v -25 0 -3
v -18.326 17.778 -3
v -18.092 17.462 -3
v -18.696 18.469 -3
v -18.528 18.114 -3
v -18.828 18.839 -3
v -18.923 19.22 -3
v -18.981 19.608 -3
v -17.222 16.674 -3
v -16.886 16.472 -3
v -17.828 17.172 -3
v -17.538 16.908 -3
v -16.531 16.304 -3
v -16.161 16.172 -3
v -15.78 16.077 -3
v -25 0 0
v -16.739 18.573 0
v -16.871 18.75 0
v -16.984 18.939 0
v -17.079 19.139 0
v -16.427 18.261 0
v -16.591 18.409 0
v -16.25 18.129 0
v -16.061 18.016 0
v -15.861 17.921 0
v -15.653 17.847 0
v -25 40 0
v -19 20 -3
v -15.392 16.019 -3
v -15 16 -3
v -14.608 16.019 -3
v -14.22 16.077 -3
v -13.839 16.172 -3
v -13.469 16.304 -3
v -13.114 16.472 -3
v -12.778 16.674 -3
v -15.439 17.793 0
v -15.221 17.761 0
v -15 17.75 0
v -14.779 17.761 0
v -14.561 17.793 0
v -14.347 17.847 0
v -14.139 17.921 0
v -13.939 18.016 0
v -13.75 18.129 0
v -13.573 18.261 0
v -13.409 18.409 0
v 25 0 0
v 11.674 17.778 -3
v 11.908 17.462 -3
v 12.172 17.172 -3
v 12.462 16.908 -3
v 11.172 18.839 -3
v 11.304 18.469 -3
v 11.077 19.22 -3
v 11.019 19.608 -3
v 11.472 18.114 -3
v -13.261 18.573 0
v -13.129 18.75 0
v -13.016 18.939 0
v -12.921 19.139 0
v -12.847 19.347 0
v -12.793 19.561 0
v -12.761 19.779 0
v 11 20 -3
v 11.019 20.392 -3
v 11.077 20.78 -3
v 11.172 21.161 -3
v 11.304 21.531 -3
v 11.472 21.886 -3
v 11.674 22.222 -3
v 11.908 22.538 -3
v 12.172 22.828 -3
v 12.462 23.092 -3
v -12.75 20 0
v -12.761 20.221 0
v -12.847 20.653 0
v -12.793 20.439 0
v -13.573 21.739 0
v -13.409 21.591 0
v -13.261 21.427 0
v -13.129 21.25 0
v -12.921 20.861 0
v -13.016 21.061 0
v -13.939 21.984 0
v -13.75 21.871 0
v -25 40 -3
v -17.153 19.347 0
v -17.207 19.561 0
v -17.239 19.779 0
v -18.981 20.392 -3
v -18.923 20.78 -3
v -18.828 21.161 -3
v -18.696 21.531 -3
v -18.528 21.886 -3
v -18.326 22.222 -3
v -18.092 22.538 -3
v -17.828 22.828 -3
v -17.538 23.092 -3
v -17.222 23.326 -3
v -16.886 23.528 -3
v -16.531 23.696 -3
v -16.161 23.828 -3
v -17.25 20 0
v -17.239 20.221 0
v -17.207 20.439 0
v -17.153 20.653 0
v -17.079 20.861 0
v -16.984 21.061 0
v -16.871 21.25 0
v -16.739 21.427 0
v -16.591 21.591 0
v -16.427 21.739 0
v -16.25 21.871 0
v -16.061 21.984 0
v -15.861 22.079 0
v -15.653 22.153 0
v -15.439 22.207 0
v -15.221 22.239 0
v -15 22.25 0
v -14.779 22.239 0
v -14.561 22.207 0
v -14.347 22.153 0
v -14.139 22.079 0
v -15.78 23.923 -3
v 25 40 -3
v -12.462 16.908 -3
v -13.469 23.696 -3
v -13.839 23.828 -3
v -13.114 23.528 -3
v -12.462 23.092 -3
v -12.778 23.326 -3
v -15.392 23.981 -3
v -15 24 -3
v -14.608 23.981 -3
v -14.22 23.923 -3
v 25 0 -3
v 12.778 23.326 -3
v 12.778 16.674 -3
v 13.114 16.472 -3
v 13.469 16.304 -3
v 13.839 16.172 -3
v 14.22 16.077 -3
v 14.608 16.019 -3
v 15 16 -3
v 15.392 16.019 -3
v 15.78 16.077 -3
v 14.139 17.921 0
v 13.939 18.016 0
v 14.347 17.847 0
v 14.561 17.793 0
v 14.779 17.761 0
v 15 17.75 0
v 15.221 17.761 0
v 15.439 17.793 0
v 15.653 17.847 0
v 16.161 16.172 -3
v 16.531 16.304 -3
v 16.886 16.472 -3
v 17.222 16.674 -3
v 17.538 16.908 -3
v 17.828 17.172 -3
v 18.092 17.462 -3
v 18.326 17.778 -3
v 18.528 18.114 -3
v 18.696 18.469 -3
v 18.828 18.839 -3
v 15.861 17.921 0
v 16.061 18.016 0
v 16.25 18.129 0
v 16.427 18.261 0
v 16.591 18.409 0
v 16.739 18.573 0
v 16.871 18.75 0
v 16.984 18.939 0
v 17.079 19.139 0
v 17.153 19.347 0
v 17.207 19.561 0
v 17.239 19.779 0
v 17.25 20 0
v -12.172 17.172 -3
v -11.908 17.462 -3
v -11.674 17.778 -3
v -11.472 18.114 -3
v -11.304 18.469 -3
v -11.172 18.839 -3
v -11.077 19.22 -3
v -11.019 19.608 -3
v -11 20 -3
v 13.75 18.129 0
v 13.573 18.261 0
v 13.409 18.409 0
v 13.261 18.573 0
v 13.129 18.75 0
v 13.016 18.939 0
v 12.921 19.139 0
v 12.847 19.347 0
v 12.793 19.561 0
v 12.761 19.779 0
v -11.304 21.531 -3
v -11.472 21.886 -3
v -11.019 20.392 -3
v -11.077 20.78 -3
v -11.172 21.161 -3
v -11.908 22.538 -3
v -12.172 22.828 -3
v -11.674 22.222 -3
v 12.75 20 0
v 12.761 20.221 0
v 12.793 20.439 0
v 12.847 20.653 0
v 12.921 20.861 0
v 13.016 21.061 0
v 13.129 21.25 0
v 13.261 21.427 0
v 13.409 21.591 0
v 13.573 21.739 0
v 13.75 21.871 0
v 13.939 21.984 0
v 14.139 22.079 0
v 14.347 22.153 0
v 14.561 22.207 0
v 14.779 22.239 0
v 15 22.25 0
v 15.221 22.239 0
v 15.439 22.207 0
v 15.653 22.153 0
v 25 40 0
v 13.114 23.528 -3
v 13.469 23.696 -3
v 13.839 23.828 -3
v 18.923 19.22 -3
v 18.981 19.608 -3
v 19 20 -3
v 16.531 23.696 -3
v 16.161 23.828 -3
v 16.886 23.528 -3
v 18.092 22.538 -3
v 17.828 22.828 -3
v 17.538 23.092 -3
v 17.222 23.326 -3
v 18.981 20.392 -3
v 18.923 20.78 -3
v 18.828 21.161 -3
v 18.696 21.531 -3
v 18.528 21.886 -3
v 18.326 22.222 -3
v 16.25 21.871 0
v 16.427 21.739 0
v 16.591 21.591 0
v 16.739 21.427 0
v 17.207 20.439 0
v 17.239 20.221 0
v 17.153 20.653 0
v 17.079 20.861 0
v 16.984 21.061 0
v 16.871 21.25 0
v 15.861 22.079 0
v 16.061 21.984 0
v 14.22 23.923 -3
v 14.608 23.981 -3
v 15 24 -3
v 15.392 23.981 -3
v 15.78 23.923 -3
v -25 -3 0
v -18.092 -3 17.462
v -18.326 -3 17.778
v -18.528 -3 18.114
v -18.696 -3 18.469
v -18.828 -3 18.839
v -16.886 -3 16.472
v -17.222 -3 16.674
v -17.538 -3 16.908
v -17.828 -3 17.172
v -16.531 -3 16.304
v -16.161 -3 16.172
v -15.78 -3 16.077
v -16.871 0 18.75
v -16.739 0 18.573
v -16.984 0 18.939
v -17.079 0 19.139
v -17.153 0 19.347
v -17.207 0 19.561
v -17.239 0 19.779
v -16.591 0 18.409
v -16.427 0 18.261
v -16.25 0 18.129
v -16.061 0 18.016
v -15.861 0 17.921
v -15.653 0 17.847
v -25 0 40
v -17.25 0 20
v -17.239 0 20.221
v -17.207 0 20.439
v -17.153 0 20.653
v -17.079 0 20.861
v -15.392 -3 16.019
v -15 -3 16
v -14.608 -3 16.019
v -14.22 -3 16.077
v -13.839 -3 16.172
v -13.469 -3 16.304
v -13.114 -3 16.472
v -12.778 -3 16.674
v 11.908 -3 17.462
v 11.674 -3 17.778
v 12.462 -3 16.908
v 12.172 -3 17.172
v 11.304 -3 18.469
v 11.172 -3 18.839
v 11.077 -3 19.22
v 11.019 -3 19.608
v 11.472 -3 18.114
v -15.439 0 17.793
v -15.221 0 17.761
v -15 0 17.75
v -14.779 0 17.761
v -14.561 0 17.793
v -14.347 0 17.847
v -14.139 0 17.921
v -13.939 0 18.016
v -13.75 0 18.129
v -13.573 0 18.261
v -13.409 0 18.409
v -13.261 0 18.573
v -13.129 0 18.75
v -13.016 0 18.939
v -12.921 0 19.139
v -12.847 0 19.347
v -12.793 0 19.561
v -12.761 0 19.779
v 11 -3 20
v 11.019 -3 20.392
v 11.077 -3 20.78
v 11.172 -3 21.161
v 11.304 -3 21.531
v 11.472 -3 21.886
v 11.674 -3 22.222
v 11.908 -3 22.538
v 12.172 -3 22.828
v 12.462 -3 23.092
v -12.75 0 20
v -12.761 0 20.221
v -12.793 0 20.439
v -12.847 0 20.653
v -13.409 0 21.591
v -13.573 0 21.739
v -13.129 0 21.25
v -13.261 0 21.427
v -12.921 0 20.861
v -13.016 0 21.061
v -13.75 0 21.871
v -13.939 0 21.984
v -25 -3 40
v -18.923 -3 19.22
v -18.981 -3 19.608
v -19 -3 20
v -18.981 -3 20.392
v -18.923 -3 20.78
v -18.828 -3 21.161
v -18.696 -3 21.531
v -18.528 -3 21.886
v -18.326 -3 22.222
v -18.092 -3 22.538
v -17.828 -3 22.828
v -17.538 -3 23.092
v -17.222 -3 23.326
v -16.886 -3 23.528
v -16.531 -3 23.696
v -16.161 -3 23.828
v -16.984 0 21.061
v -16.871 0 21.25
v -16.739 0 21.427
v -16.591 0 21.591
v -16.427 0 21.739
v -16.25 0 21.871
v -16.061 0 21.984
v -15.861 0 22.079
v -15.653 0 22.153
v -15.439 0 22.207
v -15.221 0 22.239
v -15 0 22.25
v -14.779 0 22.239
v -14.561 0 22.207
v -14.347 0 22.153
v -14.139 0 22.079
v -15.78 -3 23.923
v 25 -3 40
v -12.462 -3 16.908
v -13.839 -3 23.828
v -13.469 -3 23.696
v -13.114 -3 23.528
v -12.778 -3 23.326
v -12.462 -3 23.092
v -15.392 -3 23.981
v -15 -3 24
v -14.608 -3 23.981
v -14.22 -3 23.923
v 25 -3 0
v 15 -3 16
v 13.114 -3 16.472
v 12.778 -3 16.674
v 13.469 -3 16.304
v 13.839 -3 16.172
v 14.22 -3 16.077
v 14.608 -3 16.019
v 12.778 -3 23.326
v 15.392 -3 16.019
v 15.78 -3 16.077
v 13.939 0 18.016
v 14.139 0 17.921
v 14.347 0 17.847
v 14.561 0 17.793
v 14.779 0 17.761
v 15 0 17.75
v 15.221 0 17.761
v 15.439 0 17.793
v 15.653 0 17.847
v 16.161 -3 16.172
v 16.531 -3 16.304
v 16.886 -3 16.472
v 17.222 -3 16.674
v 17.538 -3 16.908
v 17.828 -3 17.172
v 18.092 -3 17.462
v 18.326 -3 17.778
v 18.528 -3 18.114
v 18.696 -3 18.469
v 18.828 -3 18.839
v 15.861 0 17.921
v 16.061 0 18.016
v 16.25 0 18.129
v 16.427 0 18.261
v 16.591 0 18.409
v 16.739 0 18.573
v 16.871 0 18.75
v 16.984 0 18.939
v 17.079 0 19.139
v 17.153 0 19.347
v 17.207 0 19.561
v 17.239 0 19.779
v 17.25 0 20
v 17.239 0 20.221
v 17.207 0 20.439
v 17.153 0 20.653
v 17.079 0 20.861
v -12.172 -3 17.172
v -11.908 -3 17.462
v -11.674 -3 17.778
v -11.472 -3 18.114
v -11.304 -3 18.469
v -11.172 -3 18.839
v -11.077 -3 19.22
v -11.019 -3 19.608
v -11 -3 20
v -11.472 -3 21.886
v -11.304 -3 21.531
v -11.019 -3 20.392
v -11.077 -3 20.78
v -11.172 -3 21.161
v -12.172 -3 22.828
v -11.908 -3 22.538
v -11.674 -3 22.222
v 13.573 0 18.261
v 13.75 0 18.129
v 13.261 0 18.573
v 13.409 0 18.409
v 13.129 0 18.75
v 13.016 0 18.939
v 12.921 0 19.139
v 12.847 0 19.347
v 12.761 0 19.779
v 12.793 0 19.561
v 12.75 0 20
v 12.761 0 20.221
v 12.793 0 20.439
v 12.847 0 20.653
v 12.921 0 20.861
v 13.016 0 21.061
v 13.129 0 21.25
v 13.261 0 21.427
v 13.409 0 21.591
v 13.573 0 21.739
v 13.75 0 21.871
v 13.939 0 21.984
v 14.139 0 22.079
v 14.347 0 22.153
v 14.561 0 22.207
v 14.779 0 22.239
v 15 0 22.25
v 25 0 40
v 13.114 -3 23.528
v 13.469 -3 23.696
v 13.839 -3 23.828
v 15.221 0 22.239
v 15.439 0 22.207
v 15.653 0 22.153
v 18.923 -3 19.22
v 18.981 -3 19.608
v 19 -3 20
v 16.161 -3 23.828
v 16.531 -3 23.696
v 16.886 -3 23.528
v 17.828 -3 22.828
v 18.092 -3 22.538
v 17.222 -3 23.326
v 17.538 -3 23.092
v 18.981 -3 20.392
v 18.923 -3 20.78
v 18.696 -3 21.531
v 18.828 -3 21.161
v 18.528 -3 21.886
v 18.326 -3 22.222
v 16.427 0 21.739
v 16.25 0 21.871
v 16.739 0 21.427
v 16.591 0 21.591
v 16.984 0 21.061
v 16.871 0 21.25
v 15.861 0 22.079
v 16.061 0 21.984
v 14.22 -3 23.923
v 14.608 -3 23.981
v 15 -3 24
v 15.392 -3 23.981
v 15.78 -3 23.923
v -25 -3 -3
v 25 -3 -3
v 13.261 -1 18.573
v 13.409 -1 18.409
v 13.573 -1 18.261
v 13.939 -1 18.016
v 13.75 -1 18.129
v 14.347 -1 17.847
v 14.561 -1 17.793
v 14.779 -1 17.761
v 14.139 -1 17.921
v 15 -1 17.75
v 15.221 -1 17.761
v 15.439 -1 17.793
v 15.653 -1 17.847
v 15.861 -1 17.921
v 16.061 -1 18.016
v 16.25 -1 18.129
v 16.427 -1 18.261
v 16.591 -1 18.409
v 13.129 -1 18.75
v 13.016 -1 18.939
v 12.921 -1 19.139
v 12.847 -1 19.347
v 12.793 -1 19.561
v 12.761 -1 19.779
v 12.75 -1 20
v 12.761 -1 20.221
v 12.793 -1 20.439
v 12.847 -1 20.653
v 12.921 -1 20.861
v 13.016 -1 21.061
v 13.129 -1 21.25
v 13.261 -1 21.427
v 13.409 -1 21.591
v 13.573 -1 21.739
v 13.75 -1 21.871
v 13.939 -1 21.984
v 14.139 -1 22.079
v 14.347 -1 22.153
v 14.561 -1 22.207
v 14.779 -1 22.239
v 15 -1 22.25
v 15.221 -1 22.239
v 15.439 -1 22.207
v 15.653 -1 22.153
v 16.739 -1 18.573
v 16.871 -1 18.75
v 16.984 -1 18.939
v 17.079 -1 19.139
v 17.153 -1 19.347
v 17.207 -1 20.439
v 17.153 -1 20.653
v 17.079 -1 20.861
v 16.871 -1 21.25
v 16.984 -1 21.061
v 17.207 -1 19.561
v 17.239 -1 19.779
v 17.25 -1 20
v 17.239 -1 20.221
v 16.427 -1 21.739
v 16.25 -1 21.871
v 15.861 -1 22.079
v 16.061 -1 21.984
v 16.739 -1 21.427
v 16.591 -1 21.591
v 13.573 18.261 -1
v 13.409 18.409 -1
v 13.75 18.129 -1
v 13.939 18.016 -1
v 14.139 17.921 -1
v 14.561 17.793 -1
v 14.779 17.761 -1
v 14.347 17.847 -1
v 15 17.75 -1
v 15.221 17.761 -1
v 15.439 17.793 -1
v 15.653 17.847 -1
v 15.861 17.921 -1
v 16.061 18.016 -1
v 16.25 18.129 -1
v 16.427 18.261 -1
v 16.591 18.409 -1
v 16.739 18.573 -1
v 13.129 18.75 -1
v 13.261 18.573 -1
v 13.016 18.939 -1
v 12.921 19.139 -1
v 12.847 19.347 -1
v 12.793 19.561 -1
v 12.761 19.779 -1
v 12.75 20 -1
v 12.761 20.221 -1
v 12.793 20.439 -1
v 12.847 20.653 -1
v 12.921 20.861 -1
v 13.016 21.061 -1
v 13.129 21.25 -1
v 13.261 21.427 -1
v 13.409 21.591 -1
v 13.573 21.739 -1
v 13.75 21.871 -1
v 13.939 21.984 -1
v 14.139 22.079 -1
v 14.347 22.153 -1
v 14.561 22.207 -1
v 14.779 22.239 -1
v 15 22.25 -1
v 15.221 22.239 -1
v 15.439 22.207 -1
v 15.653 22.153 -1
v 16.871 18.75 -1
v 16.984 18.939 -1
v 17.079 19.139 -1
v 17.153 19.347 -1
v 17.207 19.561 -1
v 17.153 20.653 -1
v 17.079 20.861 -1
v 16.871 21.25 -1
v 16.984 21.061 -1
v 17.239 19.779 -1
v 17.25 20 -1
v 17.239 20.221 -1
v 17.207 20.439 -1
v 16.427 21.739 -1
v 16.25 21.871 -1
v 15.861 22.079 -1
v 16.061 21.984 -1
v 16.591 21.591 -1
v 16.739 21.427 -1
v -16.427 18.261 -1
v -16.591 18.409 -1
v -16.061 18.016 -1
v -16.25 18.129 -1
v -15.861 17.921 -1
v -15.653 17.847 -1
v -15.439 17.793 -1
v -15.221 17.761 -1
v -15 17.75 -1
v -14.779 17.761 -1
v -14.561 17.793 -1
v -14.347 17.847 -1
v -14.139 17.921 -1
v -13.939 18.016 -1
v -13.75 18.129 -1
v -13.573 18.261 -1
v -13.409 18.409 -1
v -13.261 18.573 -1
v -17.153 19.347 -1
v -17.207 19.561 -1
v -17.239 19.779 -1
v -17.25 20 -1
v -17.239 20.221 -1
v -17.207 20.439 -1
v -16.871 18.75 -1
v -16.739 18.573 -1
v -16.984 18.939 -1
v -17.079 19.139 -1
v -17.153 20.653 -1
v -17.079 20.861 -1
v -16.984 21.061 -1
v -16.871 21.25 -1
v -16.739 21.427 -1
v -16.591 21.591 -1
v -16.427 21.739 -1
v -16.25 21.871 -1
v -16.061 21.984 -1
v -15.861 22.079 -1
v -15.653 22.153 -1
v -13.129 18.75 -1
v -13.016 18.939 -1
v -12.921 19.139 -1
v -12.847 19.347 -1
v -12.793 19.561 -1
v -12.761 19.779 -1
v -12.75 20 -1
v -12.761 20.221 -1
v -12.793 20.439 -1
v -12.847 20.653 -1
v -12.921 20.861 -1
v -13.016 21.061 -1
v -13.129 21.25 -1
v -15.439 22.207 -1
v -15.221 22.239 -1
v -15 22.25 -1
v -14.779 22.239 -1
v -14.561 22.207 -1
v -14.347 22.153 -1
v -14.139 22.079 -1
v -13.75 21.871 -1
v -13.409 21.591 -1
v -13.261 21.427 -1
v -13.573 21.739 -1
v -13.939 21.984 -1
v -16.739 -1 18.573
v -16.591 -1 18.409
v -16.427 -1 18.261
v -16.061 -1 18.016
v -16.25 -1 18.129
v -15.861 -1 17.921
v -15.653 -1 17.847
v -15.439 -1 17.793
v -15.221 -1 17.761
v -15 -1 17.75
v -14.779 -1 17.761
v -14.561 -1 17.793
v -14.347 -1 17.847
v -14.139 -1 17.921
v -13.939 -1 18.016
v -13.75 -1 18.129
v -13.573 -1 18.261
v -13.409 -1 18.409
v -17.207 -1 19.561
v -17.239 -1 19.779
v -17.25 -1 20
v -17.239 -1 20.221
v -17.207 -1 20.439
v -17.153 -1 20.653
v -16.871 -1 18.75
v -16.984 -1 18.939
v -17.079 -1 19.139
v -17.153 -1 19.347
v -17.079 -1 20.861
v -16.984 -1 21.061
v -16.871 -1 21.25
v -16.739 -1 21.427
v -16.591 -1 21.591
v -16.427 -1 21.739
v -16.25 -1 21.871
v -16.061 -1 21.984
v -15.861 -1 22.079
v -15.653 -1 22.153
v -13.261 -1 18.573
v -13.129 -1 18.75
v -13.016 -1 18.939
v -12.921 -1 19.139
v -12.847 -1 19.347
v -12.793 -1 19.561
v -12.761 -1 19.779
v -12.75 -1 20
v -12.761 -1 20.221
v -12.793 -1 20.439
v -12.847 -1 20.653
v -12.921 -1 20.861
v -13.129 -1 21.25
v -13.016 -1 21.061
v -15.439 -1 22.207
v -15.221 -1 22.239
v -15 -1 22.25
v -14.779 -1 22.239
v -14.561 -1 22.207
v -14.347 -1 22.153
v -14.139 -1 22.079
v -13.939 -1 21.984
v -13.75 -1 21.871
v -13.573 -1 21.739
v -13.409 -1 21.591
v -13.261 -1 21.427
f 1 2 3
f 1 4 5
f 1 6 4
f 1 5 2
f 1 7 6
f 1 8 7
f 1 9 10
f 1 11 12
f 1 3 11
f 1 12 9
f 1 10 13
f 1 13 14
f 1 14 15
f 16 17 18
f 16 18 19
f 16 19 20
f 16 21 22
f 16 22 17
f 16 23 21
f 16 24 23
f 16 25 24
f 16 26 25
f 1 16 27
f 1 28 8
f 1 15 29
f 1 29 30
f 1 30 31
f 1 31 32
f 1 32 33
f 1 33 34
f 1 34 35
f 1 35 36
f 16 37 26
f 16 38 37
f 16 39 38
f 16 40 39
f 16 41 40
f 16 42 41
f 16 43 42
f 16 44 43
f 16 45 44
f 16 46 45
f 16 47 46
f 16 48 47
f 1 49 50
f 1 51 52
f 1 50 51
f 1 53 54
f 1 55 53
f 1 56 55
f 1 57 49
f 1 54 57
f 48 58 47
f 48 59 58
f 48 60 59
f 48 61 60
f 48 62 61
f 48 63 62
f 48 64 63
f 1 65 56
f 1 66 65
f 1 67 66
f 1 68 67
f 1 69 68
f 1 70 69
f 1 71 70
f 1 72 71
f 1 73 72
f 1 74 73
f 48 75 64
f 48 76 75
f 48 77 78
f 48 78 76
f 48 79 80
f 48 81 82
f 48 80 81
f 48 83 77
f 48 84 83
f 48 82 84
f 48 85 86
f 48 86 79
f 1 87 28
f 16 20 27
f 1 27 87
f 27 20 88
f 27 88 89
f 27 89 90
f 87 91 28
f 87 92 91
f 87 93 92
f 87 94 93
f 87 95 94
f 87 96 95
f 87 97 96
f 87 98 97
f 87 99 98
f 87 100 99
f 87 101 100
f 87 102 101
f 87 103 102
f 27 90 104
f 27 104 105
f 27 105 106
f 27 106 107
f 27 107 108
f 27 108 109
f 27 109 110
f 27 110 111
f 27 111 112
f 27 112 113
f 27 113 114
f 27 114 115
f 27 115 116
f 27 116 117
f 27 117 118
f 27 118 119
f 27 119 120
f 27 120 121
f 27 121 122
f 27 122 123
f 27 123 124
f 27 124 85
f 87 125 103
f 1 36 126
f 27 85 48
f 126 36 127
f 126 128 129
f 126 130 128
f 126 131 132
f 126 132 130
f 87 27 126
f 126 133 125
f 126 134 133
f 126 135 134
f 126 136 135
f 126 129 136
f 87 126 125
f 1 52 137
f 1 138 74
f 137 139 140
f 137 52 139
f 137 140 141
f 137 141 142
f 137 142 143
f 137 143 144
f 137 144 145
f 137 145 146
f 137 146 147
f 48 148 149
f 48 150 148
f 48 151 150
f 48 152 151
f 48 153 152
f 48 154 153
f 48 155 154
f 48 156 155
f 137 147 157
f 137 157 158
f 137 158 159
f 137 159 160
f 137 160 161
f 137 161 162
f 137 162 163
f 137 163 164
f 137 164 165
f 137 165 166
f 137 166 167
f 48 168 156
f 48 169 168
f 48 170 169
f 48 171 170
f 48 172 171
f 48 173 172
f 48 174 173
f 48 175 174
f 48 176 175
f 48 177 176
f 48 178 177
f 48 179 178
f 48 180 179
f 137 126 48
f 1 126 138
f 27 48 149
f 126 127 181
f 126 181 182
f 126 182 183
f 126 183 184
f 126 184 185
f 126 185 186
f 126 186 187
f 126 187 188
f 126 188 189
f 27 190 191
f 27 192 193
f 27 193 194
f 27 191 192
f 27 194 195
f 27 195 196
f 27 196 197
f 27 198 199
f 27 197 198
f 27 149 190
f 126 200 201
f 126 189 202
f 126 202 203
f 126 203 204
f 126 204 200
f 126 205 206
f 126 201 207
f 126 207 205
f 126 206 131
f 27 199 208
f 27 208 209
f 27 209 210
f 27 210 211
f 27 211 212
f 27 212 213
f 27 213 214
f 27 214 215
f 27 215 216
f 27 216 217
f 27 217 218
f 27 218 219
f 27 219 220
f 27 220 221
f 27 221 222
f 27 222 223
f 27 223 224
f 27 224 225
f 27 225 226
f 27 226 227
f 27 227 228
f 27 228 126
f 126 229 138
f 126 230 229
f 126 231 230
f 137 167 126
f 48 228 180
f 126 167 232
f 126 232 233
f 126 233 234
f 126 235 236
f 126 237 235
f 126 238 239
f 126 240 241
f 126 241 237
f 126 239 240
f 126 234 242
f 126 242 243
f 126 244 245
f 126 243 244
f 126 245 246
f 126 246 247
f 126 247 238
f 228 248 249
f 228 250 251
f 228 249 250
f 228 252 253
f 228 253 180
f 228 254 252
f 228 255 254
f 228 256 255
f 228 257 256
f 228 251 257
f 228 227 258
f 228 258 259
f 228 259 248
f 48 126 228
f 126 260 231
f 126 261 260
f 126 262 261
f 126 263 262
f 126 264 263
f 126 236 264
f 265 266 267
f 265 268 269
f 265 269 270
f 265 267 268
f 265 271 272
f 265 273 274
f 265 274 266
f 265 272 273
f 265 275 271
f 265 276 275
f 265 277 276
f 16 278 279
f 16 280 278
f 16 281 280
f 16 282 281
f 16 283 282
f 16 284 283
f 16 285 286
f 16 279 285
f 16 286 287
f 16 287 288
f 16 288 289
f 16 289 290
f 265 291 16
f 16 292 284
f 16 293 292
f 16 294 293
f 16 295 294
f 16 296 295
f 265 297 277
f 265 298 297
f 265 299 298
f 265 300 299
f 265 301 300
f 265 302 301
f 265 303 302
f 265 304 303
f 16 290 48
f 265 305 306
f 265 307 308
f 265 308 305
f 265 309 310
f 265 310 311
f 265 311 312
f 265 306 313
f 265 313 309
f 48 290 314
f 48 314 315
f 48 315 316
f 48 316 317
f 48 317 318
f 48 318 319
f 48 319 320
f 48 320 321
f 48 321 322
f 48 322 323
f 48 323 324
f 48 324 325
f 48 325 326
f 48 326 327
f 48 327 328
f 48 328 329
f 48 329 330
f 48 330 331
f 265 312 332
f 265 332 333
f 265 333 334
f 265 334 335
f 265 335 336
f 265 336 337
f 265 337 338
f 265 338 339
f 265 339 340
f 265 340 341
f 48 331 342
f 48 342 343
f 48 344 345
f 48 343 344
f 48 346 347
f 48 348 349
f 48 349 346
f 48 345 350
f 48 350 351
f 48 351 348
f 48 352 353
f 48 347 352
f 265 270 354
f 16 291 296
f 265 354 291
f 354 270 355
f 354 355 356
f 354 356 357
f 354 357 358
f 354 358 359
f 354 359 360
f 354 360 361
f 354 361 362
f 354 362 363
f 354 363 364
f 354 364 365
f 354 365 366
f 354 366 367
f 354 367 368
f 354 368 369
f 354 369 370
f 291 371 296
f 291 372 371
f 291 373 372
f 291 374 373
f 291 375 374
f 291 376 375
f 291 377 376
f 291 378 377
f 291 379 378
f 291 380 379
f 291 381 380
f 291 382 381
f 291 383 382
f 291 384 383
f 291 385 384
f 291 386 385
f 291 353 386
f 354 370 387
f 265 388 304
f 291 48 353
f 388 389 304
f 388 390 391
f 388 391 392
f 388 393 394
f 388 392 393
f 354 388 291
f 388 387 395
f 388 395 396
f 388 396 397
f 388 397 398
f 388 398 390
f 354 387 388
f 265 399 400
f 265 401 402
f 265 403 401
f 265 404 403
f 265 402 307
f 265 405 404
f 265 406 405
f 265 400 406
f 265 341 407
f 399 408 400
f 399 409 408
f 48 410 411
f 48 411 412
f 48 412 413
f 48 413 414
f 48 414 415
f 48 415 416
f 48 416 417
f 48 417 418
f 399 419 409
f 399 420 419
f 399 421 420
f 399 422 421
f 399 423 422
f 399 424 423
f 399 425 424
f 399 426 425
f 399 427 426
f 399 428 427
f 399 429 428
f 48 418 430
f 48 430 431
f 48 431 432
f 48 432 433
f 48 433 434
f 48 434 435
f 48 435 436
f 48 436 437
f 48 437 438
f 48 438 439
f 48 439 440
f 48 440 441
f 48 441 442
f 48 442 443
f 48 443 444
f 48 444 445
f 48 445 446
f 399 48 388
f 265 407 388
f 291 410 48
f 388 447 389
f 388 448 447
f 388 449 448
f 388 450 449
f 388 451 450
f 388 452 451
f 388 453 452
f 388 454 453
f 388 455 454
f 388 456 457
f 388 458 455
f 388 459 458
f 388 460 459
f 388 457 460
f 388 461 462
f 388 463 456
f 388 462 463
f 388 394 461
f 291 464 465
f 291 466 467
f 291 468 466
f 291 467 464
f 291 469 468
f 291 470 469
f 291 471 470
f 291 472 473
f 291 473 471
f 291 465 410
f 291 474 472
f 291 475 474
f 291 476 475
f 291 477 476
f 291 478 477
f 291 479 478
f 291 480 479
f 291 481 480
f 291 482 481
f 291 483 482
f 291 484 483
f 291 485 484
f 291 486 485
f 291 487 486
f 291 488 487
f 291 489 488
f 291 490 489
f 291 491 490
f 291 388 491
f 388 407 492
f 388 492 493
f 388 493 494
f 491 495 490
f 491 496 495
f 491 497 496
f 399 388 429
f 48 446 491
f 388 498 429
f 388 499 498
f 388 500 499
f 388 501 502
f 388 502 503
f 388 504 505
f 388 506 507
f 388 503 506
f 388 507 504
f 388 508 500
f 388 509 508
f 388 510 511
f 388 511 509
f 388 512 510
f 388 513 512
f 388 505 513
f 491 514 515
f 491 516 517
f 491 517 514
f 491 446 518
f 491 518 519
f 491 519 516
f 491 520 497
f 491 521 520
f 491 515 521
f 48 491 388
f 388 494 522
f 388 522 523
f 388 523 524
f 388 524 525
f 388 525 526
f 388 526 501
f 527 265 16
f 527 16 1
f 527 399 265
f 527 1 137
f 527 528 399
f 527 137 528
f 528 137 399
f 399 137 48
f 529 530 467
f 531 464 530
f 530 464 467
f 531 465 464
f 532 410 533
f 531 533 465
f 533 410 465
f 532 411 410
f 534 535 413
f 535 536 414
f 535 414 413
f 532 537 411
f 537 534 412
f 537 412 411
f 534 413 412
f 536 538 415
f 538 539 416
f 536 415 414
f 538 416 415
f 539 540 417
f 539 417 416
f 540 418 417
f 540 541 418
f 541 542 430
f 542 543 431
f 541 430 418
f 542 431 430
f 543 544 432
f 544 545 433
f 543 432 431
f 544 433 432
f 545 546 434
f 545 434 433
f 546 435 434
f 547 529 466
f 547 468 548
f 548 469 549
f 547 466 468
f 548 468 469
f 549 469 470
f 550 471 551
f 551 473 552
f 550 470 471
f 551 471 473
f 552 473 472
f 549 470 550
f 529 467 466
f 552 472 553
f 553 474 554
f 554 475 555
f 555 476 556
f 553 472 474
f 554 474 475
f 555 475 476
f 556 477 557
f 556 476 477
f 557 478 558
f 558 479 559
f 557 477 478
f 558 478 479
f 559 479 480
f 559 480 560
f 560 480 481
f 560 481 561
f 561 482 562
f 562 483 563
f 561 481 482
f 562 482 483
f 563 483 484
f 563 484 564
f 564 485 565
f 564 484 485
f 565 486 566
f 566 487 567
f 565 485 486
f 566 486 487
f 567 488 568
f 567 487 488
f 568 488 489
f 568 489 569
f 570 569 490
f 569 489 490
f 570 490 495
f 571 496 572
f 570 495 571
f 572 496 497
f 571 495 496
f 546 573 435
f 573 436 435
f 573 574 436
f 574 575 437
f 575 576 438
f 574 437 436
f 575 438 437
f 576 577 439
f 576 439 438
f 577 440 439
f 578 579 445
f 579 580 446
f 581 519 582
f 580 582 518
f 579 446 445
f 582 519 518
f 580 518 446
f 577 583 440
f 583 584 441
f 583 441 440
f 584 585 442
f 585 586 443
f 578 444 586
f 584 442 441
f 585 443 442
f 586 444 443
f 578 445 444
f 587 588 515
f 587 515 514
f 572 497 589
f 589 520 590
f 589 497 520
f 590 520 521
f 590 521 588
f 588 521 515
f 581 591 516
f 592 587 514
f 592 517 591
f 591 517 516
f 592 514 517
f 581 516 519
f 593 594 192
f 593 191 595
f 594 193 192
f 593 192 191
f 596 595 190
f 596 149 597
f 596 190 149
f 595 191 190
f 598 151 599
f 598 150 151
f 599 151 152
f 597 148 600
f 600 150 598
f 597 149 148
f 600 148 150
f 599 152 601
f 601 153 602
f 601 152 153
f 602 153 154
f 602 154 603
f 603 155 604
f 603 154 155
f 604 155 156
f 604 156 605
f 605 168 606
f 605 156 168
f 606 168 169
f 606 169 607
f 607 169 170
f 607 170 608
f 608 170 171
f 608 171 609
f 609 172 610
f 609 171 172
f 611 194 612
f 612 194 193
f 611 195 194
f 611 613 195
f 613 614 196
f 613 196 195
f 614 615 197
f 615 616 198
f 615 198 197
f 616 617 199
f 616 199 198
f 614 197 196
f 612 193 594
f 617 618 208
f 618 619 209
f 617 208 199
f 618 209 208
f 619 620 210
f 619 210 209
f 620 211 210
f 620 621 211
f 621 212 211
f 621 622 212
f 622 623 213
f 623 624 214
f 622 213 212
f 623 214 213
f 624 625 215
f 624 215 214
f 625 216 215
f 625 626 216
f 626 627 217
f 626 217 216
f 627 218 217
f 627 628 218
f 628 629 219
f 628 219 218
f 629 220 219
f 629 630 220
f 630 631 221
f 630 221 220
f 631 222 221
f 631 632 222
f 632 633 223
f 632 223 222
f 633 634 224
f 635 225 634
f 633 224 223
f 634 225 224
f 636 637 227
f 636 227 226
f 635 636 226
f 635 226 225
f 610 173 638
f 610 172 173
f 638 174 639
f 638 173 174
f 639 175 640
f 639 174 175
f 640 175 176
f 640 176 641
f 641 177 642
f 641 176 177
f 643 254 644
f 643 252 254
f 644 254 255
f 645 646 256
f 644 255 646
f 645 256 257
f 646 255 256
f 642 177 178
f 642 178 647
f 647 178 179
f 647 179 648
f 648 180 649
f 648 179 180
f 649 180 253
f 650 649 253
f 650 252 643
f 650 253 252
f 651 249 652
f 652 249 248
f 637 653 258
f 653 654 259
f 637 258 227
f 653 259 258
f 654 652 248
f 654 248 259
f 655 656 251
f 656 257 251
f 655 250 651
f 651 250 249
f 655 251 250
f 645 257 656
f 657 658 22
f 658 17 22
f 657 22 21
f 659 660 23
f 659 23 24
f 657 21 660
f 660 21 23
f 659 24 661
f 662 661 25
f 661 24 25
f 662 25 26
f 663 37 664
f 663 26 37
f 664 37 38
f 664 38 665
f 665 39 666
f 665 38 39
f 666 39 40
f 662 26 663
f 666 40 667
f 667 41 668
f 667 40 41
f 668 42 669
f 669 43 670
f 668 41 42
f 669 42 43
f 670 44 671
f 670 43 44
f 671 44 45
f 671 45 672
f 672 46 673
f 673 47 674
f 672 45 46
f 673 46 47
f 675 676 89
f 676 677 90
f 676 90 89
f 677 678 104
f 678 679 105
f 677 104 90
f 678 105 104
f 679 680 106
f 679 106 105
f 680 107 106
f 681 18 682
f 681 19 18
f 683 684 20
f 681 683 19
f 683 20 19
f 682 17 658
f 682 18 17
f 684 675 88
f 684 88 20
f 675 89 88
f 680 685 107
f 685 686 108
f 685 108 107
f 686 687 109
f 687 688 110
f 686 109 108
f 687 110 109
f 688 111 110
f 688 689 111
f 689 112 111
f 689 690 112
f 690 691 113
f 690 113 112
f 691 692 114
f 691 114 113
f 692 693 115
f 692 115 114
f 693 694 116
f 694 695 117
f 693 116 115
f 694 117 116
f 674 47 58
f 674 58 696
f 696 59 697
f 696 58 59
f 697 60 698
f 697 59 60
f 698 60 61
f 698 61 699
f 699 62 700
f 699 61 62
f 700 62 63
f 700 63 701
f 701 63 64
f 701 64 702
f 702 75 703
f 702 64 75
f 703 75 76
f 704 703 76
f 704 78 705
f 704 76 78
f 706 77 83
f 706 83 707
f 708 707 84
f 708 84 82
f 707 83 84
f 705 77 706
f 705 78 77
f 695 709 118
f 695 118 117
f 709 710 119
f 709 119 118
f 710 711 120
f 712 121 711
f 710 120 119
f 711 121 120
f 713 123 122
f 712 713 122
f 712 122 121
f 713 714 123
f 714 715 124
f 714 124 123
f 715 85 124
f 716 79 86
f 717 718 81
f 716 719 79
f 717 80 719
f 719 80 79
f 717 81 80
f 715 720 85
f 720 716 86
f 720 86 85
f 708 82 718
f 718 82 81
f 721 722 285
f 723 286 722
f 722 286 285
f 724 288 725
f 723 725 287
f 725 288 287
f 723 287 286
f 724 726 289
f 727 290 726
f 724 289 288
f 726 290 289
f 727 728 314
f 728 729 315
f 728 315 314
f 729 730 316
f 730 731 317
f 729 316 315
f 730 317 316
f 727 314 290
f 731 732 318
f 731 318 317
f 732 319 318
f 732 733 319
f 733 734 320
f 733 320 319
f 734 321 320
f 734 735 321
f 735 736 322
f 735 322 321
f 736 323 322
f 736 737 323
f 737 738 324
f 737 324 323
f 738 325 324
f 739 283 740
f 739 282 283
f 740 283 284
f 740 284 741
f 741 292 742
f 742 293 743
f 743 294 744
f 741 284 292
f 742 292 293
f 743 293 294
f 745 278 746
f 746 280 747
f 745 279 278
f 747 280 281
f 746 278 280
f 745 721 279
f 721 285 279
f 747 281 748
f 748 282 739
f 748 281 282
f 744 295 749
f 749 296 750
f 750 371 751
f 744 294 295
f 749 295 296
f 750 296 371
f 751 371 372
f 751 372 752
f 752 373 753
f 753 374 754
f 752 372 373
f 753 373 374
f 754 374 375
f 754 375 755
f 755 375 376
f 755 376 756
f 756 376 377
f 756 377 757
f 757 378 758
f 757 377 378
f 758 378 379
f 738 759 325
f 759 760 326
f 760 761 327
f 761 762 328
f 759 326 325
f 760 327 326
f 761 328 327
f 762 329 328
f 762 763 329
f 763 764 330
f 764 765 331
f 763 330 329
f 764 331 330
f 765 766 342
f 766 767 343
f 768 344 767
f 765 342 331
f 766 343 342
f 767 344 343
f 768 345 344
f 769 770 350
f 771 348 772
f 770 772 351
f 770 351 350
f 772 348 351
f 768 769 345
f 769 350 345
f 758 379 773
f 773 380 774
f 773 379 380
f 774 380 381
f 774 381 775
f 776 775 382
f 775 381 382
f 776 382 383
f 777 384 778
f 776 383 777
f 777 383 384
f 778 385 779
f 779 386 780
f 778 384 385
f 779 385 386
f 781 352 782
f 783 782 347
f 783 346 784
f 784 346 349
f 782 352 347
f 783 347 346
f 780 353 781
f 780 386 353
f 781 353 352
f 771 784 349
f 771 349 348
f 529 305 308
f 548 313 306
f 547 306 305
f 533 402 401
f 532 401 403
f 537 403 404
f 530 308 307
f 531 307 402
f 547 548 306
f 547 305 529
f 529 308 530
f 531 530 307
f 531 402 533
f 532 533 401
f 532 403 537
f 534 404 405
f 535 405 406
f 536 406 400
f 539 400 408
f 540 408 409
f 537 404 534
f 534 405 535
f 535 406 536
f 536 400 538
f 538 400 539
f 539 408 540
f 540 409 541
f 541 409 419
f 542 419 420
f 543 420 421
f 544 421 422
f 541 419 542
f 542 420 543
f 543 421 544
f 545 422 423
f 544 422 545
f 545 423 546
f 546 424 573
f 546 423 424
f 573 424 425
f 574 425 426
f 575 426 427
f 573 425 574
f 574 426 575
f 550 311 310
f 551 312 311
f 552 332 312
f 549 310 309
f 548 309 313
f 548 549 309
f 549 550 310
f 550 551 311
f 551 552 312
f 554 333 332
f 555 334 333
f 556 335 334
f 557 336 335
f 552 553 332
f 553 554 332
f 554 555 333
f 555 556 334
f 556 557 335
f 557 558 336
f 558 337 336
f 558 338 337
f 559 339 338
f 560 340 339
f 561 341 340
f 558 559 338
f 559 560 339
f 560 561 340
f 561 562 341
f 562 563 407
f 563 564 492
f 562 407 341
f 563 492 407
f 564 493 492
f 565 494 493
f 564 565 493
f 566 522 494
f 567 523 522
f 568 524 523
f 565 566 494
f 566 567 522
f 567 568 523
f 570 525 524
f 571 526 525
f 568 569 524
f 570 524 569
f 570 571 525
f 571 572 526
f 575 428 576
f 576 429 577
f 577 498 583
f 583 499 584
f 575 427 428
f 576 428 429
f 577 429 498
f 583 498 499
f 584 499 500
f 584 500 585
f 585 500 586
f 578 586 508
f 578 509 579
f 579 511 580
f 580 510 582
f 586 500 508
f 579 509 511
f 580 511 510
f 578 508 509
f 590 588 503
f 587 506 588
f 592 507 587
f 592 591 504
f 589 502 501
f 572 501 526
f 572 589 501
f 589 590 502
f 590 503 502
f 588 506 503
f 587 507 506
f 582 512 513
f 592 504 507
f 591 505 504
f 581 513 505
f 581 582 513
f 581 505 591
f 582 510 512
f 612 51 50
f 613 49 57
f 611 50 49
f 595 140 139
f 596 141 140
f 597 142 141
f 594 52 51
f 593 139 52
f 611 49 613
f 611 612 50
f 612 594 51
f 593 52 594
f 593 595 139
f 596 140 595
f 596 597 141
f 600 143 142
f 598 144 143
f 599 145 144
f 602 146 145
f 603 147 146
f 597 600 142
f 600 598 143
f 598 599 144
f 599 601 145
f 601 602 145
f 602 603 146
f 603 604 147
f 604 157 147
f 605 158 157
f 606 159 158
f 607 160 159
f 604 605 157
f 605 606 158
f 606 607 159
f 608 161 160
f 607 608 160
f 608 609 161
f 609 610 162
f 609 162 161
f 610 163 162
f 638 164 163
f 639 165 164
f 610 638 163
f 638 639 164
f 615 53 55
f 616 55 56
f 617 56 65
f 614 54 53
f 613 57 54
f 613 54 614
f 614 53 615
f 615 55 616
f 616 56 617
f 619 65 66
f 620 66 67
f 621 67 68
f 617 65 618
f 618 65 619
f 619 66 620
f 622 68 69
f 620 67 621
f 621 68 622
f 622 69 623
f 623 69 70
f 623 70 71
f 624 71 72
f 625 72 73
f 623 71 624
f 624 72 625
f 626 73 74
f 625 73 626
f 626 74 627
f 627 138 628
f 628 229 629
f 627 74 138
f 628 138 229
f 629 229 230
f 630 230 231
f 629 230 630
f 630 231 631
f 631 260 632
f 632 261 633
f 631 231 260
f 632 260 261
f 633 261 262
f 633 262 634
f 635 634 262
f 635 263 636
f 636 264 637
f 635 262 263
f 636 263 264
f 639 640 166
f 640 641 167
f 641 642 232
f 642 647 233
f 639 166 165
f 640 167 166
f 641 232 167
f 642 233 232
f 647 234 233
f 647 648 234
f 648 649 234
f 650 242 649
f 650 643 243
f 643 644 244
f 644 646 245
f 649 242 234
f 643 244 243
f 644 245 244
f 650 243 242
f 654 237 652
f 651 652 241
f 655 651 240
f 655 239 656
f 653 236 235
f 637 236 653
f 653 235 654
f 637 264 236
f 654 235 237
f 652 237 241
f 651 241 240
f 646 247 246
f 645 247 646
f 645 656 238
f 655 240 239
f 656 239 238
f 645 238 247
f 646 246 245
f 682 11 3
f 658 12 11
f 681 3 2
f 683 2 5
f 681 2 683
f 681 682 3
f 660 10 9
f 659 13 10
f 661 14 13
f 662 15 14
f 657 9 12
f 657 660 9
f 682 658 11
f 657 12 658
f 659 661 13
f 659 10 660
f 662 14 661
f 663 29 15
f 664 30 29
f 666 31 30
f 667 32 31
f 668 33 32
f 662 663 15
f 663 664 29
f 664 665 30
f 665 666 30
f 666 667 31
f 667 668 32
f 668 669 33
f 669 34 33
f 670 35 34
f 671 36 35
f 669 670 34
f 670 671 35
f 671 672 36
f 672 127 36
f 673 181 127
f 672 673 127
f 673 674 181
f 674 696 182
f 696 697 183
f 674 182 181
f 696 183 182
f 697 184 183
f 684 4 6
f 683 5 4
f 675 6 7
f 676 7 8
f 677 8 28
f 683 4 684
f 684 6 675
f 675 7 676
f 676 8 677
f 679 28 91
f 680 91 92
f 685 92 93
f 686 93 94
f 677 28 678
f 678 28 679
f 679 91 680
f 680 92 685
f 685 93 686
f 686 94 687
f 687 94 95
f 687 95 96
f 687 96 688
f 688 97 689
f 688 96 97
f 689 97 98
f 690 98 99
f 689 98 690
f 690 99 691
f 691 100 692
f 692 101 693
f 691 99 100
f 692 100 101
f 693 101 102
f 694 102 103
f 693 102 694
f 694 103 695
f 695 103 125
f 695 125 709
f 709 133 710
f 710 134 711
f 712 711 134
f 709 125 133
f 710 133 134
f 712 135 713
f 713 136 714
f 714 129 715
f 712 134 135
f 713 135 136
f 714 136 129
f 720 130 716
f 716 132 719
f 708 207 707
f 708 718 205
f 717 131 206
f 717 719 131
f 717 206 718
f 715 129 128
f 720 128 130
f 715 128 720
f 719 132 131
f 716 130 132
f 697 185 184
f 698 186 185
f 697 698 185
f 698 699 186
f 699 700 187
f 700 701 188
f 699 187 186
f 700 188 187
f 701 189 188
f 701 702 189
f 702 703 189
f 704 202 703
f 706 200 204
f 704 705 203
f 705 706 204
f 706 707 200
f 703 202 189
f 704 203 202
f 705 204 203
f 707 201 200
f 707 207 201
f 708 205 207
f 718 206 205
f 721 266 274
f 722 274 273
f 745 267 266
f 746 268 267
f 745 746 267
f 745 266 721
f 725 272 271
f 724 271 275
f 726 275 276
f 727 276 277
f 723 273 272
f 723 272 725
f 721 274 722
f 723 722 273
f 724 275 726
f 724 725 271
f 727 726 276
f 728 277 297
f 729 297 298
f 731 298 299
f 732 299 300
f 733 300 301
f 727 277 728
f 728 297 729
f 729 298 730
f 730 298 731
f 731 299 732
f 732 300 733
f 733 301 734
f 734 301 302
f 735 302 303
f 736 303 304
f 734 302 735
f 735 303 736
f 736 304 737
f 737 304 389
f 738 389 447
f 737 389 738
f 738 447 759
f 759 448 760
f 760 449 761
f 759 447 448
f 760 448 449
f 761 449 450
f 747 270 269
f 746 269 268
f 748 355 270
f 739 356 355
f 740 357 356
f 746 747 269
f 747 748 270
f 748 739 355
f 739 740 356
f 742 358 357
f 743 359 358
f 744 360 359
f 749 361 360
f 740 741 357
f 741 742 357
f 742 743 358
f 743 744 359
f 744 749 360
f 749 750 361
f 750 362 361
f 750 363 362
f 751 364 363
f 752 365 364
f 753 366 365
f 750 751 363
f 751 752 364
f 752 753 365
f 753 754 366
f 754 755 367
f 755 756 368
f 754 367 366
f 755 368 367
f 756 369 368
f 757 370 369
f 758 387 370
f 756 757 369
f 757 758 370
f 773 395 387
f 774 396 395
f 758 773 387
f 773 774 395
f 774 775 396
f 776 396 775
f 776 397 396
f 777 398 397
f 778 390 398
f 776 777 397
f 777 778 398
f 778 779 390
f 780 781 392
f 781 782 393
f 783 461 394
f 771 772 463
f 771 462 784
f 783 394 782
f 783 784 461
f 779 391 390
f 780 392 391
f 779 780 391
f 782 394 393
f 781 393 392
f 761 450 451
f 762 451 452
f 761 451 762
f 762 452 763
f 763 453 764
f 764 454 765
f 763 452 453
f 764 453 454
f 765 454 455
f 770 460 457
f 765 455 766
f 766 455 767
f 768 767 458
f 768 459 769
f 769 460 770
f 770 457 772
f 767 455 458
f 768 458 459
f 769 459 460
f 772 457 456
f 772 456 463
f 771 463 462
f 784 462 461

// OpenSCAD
$fn = 64;

W = 50;
D = 40;
H = 40;
T = 3;

x0 = -W / 2;
row_h = D / 2;
row_v = H / 2;
hole_x = [-W / 2 + 10, W / 2 - 10];

module countersunk_hole_z() {
    union() {
        translate([0, 0, -1])
            cylinder(h = T + 2, r1 = 2.25, r2 = 2.25);
        cylinder(h = 2, r1 = 4, r2 = 2.25);
    }
}

difference() {
    union() {
        translate([x0, 0, -T])
            cube([W, D, T]);
        translate([x0, -T, 0])
            cube([W, T, H]);
        translate([x0, -T, -T])
            cube([W, T, T]);
    }

    for (x = hole_x) {
        translate([x, row_h, -T])
            countersunk_hole_z();

        translate([x, -T, row_v])
            rotate([-90, 0, 0])
                countersunk_hole_z();
    }
}
